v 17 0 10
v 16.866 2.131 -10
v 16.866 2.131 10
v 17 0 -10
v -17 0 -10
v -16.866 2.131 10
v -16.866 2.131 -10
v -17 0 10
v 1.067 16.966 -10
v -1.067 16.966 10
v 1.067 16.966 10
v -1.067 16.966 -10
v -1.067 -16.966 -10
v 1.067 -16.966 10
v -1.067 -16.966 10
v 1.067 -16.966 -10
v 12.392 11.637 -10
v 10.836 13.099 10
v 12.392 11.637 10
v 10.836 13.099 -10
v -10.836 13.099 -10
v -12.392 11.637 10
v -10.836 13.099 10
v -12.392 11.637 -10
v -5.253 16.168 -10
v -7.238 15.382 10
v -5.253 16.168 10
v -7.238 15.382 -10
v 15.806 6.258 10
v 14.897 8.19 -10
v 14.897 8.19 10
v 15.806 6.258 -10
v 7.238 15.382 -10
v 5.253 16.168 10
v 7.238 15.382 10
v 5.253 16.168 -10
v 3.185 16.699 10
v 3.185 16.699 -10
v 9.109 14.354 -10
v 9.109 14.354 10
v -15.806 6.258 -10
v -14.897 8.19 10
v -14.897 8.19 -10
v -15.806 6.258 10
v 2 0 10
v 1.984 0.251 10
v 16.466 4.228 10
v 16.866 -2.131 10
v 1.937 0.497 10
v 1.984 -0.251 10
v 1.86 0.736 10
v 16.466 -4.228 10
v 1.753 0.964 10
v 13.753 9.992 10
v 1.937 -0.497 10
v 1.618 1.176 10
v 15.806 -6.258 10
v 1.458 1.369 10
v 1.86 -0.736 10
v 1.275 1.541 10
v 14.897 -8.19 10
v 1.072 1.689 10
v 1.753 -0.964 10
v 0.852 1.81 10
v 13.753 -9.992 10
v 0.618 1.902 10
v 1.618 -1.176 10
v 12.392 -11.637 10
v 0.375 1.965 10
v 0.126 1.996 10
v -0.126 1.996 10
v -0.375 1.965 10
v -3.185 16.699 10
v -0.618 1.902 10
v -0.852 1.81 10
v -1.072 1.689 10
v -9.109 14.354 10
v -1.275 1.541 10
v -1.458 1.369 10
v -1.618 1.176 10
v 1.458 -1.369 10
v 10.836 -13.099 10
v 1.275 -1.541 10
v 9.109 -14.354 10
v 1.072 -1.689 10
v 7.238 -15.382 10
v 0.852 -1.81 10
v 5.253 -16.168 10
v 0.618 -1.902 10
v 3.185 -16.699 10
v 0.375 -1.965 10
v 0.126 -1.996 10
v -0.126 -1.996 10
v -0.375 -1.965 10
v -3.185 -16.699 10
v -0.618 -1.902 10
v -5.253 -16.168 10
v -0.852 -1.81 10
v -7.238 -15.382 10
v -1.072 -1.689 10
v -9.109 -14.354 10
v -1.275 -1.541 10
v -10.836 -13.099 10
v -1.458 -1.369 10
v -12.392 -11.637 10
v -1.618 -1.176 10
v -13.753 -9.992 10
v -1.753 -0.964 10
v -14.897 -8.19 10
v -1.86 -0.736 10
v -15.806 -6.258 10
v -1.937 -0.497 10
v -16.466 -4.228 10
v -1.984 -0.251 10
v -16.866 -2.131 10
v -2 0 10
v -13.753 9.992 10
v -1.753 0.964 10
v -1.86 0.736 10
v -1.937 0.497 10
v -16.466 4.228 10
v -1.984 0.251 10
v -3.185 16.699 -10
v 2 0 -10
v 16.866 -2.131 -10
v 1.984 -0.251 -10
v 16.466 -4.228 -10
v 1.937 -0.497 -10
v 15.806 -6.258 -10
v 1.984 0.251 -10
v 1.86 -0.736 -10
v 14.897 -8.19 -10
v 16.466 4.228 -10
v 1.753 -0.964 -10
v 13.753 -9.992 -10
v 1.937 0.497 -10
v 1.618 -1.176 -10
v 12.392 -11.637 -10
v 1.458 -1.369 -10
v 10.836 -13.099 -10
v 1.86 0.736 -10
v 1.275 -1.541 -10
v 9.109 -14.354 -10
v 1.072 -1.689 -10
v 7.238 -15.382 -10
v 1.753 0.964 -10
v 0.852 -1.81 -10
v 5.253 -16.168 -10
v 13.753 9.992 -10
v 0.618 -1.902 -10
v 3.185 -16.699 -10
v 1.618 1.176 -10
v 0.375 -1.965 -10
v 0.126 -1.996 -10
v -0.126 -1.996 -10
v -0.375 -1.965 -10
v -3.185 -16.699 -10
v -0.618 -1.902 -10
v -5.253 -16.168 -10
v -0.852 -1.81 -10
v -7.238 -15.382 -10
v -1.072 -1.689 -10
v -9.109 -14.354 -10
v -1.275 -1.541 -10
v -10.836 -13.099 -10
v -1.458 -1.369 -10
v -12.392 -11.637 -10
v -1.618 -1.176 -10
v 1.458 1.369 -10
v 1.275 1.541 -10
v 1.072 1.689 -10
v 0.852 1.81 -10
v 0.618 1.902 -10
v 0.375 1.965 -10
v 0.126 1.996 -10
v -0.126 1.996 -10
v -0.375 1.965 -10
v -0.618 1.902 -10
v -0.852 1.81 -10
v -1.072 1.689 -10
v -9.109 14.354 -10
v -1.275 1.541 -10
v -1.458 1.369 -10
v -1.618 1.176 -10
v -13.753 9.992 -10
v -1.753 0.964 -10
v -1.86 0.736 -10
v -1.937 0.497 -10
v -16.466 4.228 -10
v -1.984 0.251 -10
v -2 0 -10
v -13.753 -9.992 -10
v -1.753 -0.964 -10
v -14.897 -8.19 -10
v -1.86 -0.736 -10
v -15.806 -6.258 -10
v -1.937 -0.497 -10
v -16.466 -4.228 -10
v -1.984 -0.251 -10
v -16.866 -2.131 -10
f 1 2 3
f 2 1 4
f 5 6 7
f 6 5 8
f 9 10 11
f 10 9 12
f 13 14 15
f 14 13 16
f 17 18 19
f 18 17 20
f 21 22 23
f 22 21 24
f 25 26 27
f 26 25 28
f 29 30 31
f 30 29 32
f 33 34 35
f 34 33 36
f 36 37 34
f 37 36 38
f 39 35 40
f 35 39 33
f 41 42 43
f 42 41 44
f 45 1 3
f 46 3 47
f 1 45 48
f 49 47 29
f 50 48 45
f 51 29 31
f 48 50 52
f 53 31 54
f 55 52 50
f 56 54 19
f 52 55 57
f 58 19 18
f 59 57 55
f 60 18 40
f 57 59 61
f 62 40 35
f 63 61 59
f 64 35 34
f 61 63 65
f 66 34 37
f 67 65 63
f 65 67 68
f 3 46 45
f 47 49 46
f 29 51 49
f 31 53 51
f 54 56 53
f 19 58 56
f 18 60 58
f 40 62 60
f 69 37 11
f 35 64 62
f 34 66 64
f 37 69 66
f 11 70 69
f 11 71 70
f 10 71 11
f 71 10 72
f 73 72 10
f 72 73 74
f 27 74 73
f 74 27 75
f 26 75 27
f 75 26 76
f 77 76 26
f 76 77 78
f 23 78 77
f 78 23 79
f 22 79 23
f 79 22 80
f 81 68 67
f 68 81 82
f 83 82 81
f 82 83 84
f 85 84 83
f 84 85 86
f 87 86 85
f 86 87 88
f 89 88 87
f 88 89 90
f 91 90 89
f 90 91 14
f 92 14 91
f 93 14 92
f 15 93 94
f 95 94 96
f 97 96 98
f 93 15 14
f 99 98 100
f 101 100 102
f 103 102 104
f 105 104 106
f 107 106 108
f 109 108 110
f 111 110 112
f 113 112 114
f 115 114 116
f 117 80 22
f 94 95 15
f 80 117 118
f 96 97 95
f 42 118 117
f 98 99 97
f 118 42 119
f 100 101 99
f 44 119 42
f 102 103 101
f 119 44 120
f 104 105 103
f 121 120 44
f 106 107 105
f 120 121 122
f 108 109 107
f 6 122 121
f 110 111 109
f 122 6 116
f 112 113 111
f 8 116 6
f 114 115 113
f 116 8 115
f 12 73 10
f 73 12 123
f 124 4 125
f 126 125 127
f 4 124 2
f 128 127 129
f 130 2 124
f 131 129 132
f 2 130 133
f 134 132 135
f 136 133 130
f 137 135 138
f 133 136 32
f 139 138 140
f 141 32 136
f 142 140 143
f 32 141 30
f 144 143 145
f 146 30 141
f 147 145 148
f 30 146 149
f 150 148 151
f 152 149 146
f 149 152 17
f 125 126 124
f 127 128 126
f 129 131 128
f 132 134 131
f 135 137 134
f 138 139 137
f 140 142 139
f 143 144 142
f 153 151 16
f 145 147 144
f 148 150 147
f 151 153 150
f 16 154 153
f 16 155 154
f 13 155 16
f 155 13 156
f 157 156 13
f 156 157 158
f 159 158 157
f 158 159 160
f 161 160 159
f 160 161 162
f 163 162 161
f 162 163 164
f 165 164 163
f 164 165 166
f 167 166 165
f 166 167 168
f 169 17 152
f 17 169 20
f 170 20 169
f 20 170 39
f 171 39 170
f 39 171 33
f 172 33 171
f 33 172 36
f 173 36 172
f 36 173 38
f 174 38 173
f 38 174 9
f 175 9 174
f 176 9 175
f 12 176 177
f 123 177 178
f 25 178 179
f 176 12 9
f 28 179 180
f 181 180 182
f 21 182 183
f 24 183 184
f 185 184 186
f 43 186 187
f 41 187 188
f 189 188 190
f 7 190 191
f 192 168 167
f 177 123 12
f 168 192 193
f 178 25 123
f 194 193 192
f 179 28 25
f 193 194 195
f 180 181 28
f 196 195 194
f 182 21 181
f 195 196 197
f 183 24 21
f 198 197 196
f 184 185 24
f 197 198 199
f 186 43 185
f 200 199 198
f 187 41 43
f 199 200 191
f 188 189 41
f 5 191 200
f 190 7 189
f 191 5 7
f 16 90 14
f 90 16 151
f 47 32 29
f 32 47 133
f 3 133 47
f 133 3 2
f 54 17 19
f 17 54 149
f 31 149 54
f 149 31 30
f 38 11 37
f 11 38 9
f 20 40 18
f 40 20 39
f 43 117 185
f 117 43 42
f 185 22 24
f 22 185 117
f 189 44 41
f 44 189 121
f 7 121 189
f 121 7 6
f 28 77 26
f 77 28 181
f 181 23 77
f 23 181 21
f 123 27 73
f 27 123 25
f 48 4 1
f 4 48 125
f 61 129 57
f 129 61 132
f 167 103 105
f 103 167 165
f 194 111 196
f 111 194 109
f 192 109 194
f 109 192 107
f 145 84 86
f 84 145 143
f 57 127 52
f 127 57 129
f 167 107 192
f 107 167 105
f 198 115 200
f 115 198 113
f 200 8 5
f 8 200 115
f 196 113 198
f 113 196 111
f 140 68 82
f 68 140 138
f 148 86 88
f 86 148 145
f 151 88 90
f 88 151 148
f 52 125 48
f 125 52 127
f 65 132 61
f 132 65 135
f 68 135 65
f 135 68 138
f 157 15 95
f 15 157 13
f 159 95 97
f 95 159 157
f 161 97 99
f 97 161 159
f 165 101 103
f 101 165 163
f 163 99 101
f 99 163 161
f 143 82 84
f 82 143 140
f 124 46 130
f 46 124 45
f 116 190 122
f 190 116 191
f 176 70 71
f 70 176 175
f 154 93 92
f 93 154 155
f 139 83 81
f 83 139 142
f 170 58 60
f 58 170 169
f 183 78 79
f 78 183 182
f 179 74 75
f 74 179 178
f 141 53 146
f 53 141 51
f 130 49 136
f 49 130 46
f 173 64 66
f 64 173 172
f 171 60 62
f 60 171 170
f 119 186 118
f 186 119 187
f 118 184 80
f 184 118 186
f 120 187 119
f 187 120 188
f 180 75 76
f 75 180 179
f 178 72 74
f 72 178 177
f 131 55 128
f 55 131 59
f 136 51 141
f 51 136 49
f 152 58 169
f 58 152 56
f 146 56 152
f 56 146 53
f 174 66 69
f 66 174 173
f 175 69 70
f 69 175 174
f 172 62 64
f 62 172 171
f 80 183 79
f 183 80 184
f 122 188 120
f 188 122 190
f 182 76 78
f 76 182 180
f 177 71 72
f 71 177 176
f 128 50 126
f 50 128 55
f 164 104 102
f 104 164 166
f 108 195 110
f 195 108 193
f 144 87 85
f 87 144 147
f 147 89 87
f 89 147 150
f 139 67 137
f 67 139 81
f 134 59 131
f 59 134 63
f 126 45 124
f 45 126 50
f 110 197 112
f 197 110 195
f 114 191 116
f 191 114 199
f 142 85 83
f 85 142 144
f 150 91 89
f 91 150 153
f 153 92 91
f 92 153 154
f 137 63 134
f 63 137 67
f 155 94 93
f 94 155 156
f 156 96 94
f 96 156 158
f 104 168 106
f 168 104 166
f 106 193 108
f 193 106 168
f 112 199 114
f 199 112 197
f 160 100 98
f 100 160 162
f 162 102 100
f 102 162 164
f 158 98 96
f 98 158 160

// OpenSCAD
$fn = 50;


difference() {
	union() {
		translate(v = [0, 0, -10.0000000000]) {
			cylinder(h = 20, r = 17.0000000000);
		}
	}
	union() {
		translate(v = [0, 0, -100.0000000000]) {
			cylinder(h = 200, r = 2.0000000000);
		}
	}
}
